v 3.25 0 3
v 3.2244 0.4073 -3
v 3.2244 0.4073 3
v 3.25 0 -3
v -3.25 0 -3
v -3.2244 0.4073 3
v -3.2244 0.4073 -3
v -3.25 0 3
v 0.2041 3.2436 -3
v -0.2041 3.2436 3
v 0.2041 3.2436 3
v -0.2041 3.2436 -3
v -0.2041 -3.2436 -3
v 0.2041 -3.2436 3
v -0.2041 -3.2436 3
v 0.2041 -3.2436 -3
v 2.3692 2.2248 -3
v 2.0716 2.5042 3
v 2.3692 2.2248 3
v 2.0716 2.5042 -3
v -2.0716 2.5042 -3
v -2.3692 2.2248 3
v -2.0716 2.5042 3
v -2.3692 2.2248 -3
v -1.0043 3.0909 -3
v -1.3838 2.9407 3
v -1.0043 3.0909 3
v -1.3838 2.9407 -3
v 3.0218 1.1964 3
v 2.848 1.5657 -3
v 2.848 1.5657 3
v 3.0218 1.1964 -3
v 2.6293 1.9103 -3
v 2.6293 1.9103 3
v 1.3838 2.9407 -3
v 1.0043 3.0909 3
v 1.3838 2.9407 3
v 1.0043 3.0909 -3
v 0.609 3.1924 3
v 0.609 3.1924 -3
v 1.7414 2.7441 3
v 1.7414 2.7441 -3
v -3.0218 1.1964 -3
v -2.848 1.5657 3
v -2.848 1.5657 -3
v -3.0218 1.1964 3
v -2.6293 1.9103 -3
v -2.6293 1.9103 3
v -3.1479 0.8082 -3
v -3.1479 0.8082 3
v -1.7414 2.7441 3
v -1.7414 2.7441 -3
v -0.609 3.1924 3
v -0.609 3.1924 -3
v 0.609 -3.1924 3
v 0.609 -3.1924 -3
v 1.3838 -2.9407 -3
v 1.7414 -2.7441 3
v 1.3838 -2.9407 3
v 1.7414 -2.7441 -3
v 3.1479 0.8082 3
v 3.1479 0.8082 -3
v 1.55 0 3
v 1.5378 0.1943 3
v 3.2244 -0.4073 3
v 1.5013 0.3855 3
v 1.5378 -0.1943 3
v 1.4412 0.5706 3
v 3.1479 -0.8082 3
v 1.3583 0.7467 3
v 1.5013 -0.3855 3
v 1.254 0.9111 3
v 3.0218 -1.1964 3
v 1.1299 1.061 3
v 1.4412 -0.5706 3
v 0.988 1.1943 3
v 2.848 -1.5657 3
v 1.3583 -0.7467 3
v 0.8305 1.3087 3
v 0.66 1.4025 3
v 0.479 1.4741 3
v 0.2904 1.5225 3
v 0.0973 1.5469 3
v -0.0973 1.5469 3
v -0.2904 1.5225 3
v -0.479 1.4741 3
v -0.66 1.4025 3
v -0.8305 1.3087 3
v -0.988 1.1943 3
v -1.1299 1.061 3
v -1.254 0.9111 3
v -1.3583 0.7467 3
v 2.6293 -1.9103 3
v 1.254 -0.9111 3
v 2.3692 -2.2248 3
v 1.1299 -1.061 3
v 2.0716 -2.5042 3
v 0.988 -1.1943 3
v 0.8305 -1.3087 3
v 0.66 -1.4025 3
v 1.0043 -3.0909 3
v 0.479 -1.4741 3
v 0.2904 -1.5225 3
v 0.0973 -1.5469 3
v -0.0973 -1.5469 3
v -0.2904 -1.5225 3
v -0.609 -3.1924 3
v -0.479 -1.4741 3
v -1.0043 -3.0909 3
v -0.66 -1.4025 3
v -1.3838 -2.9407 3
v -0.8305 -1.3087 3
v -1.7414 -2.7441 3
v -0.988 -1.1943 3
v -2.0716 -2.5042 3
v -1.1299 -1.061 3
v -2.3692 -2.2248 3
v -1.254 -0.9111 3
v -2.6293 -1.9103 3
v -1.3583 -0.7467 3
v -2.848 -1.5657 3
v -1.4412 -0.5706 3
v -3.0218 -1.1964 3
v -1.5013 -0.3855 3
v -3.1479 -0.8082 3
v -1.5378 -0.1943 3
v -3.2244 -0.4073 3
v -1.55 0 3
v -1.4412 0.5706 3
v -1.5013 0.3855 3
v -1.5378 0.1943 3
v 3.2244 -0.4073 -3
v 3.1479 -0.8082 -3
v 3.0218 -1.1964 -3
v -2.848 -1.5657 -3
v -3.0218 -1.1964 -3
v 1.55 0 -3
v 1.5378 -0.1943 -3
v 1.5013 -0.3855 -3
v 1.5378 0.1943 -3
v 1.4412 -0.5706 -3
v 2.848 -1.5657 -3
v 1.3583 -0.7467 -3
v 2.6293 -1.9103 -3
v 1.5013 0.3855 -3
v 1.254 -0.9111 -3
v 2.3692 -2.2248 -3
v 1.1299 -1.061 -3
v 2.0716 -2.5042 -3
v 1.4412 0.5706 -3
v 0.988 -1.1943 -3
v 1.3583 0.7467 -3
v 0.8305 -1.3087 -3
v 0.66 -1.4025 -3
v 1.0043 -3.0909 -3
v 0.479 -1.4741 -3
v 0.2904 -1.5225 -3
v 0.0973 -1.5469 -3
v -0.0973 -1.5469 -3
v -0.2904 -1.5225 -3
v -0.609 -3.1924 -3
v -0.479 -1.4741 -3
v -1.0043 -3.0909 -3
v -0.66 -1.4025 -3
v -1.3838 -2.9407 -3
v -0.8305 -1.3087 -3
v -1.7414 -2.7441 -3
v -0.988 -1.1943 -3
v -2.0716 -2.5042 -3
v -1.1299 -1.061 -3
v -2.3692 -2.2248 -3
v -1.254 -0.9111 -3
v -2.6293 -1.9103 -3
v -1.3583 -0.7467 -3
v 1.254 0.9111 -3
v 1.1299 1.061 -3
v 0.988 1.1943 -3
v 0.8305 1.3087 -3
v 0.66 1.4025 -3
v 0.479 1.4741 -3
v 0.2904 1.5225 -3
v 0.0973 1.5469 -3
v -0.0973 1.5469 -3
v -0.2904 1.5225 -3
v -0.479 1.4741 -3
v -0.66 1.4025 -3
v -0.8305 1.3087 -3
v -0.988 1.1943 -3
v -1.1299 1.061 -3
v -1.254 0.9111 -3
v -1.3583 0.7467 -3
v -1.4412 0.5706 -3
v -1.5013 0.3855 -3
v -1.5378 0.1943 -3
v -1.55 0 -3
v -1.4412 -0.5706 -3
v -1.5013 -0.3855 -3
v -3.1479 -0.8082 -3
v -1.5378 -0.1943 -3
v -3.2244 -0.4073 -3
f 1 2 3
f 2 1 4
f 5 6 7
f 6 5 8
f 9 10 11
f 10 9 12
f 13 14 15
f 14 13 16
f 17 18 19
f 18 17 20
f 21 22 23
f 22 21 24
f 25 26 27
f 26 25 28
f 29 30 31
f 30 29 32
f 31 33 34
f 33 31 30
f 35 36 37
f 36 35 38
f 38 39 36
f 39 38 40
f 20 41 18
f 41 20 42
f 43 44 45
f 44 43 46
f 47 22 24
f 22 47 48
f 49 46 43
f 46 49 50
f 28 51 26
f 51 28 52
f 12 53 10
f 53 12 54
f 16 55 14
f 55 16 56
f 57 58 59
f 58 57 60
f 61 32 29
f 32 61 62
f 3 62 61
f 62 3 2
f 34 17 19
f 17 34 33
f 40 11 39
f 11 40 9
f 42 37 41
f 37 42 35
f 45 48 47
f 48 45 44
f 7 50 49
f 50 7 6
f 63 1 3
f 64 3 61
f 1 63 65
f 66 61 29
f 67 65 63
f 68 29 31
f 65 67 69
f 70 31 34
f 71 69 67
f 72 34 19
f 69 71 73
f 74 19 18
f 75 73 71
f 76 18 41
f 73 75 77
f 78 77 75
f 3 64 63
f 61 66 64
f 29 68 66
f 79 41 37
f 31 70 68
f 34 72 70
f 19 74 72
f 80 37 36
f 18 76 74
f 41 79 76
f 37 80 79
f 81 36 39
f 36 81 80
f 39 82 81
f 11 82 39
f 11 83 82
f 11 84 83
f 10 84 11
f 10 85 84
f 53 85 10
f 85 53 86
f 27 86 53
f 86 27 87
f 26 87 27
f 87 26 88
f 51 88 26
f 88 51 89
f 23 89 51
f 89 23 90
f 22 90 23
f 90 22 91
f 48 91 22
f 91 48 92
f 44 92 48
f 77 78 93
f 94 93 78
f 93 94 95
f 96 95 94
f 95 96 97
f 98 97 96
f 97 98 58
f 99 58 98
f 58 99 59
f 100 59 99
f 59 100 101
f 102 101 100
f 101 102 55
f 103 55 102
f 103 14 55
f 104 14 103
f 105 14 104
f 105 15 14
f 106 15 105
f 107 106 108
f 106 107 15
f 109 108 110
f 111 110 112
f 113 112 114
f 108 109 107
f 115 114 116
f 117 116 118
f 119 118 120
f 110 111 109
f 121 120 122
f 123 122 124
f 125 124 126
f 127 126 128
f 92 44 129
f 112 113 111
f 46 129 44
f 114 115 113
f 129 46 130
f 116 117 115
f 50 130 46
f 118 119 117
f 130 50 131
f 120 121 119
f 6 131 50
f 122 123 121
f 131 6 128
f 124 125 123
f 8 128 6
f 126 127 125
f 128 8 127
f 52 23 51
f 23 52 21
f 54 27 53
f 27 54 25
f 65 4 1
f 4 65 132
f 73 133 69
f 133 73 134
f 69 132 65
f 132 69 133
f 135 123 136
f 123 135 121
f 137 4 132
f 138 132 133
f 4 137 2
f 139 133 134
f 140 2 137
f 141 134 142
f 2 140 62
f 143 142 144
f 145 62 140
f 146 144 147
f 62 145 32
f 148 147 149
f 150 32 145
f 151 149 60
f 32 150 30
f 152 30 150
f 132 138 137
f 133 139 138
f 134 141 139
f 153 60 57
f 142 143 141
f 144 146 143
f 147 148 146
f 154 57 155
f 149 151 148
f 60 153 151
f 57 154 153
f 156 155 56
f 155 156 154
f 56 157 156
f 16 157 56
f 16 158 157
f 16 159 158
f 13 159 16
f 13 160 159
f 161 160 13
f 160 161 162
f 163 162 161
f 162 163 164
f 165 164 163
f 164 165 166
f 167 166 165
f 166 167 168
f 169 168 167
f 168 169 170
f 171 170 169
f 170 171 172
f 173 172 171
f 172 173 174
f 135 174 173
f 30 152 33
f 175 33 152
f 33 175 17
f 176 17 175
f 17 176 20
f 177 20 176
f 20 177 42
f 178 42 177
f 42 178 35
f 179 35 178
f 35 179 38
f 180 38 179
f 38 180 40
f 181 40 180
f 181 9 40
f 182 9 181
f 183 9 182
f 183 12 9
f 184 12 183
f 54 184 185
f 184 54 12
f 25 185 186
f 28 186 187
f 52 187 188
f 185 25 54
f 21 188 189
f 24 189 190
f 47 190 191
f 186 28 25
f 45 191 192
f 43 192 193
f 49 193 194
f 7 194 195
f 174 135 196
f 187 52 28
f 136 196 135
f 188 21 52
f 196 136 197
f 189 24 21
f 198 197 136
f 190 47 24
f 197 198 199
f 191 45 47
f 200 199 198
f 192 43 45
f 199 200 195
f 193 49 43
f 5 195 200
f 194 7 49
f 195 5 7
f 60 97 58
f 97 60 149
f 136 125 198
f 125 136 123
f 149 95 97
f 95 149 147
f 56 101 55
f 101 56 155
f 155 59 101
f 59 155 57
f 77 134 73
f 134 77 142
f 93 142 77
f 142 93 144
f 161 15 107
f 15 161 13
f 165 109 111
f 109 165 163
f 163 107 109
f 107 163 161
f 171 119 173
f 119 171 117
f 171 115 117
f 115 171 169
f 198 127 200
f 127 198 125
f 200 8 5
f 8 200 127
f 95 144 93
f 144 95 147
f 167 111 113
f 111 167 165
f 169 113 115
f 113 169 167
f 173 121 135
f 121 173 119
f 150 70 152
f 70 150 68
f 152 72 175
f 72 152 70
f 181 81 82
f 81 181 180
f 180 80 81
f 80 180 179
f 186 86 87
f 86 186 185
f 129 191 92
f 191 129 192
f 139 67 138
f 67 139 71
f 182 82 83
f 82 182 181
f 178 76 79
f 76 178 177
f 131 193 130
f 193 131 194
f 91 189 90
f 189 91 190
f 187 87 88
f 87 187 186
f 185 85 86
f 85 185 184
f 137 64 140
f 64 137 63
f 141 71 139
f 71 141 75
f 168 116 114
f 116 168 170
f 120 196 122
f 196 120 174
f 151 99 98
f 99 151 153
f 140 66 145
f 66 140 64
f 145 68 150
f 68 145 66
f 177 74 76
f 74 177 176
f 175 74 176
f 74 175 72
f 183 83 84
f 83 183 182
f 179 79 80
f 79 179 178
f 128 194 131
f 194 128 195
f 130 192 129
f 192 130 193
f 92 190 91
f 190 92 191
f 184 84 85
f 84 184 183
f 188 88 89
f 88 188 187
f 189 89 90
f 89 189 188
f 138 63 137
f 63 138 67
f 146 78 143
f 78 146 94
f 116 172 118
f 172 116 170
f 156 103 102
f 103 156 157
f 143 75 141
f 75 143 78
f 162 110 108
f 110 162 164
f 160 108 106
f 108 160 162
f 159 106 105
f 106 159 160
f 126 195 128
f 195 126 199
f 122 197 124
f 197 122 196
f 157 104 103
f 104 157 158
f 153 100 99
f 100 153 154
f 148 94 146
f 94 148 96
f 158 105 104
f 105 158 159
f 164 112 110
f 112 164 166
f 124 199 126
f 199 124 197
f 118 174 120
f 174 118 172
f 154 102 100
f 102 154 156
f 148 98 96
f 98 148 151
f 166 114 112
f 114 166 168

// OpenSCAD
$fn = 50;


difference() {
	union() {
		translate(v = [0, 0, -3.0000000000]) {
			cylinder(h = 6, r = 3.2500000000);
		}
	}
	union() {
		translate(v = [0, 0, -100.0000000000]) {
			cylinder(h = 200, r = 1.5500000000);
		}
	}
}
